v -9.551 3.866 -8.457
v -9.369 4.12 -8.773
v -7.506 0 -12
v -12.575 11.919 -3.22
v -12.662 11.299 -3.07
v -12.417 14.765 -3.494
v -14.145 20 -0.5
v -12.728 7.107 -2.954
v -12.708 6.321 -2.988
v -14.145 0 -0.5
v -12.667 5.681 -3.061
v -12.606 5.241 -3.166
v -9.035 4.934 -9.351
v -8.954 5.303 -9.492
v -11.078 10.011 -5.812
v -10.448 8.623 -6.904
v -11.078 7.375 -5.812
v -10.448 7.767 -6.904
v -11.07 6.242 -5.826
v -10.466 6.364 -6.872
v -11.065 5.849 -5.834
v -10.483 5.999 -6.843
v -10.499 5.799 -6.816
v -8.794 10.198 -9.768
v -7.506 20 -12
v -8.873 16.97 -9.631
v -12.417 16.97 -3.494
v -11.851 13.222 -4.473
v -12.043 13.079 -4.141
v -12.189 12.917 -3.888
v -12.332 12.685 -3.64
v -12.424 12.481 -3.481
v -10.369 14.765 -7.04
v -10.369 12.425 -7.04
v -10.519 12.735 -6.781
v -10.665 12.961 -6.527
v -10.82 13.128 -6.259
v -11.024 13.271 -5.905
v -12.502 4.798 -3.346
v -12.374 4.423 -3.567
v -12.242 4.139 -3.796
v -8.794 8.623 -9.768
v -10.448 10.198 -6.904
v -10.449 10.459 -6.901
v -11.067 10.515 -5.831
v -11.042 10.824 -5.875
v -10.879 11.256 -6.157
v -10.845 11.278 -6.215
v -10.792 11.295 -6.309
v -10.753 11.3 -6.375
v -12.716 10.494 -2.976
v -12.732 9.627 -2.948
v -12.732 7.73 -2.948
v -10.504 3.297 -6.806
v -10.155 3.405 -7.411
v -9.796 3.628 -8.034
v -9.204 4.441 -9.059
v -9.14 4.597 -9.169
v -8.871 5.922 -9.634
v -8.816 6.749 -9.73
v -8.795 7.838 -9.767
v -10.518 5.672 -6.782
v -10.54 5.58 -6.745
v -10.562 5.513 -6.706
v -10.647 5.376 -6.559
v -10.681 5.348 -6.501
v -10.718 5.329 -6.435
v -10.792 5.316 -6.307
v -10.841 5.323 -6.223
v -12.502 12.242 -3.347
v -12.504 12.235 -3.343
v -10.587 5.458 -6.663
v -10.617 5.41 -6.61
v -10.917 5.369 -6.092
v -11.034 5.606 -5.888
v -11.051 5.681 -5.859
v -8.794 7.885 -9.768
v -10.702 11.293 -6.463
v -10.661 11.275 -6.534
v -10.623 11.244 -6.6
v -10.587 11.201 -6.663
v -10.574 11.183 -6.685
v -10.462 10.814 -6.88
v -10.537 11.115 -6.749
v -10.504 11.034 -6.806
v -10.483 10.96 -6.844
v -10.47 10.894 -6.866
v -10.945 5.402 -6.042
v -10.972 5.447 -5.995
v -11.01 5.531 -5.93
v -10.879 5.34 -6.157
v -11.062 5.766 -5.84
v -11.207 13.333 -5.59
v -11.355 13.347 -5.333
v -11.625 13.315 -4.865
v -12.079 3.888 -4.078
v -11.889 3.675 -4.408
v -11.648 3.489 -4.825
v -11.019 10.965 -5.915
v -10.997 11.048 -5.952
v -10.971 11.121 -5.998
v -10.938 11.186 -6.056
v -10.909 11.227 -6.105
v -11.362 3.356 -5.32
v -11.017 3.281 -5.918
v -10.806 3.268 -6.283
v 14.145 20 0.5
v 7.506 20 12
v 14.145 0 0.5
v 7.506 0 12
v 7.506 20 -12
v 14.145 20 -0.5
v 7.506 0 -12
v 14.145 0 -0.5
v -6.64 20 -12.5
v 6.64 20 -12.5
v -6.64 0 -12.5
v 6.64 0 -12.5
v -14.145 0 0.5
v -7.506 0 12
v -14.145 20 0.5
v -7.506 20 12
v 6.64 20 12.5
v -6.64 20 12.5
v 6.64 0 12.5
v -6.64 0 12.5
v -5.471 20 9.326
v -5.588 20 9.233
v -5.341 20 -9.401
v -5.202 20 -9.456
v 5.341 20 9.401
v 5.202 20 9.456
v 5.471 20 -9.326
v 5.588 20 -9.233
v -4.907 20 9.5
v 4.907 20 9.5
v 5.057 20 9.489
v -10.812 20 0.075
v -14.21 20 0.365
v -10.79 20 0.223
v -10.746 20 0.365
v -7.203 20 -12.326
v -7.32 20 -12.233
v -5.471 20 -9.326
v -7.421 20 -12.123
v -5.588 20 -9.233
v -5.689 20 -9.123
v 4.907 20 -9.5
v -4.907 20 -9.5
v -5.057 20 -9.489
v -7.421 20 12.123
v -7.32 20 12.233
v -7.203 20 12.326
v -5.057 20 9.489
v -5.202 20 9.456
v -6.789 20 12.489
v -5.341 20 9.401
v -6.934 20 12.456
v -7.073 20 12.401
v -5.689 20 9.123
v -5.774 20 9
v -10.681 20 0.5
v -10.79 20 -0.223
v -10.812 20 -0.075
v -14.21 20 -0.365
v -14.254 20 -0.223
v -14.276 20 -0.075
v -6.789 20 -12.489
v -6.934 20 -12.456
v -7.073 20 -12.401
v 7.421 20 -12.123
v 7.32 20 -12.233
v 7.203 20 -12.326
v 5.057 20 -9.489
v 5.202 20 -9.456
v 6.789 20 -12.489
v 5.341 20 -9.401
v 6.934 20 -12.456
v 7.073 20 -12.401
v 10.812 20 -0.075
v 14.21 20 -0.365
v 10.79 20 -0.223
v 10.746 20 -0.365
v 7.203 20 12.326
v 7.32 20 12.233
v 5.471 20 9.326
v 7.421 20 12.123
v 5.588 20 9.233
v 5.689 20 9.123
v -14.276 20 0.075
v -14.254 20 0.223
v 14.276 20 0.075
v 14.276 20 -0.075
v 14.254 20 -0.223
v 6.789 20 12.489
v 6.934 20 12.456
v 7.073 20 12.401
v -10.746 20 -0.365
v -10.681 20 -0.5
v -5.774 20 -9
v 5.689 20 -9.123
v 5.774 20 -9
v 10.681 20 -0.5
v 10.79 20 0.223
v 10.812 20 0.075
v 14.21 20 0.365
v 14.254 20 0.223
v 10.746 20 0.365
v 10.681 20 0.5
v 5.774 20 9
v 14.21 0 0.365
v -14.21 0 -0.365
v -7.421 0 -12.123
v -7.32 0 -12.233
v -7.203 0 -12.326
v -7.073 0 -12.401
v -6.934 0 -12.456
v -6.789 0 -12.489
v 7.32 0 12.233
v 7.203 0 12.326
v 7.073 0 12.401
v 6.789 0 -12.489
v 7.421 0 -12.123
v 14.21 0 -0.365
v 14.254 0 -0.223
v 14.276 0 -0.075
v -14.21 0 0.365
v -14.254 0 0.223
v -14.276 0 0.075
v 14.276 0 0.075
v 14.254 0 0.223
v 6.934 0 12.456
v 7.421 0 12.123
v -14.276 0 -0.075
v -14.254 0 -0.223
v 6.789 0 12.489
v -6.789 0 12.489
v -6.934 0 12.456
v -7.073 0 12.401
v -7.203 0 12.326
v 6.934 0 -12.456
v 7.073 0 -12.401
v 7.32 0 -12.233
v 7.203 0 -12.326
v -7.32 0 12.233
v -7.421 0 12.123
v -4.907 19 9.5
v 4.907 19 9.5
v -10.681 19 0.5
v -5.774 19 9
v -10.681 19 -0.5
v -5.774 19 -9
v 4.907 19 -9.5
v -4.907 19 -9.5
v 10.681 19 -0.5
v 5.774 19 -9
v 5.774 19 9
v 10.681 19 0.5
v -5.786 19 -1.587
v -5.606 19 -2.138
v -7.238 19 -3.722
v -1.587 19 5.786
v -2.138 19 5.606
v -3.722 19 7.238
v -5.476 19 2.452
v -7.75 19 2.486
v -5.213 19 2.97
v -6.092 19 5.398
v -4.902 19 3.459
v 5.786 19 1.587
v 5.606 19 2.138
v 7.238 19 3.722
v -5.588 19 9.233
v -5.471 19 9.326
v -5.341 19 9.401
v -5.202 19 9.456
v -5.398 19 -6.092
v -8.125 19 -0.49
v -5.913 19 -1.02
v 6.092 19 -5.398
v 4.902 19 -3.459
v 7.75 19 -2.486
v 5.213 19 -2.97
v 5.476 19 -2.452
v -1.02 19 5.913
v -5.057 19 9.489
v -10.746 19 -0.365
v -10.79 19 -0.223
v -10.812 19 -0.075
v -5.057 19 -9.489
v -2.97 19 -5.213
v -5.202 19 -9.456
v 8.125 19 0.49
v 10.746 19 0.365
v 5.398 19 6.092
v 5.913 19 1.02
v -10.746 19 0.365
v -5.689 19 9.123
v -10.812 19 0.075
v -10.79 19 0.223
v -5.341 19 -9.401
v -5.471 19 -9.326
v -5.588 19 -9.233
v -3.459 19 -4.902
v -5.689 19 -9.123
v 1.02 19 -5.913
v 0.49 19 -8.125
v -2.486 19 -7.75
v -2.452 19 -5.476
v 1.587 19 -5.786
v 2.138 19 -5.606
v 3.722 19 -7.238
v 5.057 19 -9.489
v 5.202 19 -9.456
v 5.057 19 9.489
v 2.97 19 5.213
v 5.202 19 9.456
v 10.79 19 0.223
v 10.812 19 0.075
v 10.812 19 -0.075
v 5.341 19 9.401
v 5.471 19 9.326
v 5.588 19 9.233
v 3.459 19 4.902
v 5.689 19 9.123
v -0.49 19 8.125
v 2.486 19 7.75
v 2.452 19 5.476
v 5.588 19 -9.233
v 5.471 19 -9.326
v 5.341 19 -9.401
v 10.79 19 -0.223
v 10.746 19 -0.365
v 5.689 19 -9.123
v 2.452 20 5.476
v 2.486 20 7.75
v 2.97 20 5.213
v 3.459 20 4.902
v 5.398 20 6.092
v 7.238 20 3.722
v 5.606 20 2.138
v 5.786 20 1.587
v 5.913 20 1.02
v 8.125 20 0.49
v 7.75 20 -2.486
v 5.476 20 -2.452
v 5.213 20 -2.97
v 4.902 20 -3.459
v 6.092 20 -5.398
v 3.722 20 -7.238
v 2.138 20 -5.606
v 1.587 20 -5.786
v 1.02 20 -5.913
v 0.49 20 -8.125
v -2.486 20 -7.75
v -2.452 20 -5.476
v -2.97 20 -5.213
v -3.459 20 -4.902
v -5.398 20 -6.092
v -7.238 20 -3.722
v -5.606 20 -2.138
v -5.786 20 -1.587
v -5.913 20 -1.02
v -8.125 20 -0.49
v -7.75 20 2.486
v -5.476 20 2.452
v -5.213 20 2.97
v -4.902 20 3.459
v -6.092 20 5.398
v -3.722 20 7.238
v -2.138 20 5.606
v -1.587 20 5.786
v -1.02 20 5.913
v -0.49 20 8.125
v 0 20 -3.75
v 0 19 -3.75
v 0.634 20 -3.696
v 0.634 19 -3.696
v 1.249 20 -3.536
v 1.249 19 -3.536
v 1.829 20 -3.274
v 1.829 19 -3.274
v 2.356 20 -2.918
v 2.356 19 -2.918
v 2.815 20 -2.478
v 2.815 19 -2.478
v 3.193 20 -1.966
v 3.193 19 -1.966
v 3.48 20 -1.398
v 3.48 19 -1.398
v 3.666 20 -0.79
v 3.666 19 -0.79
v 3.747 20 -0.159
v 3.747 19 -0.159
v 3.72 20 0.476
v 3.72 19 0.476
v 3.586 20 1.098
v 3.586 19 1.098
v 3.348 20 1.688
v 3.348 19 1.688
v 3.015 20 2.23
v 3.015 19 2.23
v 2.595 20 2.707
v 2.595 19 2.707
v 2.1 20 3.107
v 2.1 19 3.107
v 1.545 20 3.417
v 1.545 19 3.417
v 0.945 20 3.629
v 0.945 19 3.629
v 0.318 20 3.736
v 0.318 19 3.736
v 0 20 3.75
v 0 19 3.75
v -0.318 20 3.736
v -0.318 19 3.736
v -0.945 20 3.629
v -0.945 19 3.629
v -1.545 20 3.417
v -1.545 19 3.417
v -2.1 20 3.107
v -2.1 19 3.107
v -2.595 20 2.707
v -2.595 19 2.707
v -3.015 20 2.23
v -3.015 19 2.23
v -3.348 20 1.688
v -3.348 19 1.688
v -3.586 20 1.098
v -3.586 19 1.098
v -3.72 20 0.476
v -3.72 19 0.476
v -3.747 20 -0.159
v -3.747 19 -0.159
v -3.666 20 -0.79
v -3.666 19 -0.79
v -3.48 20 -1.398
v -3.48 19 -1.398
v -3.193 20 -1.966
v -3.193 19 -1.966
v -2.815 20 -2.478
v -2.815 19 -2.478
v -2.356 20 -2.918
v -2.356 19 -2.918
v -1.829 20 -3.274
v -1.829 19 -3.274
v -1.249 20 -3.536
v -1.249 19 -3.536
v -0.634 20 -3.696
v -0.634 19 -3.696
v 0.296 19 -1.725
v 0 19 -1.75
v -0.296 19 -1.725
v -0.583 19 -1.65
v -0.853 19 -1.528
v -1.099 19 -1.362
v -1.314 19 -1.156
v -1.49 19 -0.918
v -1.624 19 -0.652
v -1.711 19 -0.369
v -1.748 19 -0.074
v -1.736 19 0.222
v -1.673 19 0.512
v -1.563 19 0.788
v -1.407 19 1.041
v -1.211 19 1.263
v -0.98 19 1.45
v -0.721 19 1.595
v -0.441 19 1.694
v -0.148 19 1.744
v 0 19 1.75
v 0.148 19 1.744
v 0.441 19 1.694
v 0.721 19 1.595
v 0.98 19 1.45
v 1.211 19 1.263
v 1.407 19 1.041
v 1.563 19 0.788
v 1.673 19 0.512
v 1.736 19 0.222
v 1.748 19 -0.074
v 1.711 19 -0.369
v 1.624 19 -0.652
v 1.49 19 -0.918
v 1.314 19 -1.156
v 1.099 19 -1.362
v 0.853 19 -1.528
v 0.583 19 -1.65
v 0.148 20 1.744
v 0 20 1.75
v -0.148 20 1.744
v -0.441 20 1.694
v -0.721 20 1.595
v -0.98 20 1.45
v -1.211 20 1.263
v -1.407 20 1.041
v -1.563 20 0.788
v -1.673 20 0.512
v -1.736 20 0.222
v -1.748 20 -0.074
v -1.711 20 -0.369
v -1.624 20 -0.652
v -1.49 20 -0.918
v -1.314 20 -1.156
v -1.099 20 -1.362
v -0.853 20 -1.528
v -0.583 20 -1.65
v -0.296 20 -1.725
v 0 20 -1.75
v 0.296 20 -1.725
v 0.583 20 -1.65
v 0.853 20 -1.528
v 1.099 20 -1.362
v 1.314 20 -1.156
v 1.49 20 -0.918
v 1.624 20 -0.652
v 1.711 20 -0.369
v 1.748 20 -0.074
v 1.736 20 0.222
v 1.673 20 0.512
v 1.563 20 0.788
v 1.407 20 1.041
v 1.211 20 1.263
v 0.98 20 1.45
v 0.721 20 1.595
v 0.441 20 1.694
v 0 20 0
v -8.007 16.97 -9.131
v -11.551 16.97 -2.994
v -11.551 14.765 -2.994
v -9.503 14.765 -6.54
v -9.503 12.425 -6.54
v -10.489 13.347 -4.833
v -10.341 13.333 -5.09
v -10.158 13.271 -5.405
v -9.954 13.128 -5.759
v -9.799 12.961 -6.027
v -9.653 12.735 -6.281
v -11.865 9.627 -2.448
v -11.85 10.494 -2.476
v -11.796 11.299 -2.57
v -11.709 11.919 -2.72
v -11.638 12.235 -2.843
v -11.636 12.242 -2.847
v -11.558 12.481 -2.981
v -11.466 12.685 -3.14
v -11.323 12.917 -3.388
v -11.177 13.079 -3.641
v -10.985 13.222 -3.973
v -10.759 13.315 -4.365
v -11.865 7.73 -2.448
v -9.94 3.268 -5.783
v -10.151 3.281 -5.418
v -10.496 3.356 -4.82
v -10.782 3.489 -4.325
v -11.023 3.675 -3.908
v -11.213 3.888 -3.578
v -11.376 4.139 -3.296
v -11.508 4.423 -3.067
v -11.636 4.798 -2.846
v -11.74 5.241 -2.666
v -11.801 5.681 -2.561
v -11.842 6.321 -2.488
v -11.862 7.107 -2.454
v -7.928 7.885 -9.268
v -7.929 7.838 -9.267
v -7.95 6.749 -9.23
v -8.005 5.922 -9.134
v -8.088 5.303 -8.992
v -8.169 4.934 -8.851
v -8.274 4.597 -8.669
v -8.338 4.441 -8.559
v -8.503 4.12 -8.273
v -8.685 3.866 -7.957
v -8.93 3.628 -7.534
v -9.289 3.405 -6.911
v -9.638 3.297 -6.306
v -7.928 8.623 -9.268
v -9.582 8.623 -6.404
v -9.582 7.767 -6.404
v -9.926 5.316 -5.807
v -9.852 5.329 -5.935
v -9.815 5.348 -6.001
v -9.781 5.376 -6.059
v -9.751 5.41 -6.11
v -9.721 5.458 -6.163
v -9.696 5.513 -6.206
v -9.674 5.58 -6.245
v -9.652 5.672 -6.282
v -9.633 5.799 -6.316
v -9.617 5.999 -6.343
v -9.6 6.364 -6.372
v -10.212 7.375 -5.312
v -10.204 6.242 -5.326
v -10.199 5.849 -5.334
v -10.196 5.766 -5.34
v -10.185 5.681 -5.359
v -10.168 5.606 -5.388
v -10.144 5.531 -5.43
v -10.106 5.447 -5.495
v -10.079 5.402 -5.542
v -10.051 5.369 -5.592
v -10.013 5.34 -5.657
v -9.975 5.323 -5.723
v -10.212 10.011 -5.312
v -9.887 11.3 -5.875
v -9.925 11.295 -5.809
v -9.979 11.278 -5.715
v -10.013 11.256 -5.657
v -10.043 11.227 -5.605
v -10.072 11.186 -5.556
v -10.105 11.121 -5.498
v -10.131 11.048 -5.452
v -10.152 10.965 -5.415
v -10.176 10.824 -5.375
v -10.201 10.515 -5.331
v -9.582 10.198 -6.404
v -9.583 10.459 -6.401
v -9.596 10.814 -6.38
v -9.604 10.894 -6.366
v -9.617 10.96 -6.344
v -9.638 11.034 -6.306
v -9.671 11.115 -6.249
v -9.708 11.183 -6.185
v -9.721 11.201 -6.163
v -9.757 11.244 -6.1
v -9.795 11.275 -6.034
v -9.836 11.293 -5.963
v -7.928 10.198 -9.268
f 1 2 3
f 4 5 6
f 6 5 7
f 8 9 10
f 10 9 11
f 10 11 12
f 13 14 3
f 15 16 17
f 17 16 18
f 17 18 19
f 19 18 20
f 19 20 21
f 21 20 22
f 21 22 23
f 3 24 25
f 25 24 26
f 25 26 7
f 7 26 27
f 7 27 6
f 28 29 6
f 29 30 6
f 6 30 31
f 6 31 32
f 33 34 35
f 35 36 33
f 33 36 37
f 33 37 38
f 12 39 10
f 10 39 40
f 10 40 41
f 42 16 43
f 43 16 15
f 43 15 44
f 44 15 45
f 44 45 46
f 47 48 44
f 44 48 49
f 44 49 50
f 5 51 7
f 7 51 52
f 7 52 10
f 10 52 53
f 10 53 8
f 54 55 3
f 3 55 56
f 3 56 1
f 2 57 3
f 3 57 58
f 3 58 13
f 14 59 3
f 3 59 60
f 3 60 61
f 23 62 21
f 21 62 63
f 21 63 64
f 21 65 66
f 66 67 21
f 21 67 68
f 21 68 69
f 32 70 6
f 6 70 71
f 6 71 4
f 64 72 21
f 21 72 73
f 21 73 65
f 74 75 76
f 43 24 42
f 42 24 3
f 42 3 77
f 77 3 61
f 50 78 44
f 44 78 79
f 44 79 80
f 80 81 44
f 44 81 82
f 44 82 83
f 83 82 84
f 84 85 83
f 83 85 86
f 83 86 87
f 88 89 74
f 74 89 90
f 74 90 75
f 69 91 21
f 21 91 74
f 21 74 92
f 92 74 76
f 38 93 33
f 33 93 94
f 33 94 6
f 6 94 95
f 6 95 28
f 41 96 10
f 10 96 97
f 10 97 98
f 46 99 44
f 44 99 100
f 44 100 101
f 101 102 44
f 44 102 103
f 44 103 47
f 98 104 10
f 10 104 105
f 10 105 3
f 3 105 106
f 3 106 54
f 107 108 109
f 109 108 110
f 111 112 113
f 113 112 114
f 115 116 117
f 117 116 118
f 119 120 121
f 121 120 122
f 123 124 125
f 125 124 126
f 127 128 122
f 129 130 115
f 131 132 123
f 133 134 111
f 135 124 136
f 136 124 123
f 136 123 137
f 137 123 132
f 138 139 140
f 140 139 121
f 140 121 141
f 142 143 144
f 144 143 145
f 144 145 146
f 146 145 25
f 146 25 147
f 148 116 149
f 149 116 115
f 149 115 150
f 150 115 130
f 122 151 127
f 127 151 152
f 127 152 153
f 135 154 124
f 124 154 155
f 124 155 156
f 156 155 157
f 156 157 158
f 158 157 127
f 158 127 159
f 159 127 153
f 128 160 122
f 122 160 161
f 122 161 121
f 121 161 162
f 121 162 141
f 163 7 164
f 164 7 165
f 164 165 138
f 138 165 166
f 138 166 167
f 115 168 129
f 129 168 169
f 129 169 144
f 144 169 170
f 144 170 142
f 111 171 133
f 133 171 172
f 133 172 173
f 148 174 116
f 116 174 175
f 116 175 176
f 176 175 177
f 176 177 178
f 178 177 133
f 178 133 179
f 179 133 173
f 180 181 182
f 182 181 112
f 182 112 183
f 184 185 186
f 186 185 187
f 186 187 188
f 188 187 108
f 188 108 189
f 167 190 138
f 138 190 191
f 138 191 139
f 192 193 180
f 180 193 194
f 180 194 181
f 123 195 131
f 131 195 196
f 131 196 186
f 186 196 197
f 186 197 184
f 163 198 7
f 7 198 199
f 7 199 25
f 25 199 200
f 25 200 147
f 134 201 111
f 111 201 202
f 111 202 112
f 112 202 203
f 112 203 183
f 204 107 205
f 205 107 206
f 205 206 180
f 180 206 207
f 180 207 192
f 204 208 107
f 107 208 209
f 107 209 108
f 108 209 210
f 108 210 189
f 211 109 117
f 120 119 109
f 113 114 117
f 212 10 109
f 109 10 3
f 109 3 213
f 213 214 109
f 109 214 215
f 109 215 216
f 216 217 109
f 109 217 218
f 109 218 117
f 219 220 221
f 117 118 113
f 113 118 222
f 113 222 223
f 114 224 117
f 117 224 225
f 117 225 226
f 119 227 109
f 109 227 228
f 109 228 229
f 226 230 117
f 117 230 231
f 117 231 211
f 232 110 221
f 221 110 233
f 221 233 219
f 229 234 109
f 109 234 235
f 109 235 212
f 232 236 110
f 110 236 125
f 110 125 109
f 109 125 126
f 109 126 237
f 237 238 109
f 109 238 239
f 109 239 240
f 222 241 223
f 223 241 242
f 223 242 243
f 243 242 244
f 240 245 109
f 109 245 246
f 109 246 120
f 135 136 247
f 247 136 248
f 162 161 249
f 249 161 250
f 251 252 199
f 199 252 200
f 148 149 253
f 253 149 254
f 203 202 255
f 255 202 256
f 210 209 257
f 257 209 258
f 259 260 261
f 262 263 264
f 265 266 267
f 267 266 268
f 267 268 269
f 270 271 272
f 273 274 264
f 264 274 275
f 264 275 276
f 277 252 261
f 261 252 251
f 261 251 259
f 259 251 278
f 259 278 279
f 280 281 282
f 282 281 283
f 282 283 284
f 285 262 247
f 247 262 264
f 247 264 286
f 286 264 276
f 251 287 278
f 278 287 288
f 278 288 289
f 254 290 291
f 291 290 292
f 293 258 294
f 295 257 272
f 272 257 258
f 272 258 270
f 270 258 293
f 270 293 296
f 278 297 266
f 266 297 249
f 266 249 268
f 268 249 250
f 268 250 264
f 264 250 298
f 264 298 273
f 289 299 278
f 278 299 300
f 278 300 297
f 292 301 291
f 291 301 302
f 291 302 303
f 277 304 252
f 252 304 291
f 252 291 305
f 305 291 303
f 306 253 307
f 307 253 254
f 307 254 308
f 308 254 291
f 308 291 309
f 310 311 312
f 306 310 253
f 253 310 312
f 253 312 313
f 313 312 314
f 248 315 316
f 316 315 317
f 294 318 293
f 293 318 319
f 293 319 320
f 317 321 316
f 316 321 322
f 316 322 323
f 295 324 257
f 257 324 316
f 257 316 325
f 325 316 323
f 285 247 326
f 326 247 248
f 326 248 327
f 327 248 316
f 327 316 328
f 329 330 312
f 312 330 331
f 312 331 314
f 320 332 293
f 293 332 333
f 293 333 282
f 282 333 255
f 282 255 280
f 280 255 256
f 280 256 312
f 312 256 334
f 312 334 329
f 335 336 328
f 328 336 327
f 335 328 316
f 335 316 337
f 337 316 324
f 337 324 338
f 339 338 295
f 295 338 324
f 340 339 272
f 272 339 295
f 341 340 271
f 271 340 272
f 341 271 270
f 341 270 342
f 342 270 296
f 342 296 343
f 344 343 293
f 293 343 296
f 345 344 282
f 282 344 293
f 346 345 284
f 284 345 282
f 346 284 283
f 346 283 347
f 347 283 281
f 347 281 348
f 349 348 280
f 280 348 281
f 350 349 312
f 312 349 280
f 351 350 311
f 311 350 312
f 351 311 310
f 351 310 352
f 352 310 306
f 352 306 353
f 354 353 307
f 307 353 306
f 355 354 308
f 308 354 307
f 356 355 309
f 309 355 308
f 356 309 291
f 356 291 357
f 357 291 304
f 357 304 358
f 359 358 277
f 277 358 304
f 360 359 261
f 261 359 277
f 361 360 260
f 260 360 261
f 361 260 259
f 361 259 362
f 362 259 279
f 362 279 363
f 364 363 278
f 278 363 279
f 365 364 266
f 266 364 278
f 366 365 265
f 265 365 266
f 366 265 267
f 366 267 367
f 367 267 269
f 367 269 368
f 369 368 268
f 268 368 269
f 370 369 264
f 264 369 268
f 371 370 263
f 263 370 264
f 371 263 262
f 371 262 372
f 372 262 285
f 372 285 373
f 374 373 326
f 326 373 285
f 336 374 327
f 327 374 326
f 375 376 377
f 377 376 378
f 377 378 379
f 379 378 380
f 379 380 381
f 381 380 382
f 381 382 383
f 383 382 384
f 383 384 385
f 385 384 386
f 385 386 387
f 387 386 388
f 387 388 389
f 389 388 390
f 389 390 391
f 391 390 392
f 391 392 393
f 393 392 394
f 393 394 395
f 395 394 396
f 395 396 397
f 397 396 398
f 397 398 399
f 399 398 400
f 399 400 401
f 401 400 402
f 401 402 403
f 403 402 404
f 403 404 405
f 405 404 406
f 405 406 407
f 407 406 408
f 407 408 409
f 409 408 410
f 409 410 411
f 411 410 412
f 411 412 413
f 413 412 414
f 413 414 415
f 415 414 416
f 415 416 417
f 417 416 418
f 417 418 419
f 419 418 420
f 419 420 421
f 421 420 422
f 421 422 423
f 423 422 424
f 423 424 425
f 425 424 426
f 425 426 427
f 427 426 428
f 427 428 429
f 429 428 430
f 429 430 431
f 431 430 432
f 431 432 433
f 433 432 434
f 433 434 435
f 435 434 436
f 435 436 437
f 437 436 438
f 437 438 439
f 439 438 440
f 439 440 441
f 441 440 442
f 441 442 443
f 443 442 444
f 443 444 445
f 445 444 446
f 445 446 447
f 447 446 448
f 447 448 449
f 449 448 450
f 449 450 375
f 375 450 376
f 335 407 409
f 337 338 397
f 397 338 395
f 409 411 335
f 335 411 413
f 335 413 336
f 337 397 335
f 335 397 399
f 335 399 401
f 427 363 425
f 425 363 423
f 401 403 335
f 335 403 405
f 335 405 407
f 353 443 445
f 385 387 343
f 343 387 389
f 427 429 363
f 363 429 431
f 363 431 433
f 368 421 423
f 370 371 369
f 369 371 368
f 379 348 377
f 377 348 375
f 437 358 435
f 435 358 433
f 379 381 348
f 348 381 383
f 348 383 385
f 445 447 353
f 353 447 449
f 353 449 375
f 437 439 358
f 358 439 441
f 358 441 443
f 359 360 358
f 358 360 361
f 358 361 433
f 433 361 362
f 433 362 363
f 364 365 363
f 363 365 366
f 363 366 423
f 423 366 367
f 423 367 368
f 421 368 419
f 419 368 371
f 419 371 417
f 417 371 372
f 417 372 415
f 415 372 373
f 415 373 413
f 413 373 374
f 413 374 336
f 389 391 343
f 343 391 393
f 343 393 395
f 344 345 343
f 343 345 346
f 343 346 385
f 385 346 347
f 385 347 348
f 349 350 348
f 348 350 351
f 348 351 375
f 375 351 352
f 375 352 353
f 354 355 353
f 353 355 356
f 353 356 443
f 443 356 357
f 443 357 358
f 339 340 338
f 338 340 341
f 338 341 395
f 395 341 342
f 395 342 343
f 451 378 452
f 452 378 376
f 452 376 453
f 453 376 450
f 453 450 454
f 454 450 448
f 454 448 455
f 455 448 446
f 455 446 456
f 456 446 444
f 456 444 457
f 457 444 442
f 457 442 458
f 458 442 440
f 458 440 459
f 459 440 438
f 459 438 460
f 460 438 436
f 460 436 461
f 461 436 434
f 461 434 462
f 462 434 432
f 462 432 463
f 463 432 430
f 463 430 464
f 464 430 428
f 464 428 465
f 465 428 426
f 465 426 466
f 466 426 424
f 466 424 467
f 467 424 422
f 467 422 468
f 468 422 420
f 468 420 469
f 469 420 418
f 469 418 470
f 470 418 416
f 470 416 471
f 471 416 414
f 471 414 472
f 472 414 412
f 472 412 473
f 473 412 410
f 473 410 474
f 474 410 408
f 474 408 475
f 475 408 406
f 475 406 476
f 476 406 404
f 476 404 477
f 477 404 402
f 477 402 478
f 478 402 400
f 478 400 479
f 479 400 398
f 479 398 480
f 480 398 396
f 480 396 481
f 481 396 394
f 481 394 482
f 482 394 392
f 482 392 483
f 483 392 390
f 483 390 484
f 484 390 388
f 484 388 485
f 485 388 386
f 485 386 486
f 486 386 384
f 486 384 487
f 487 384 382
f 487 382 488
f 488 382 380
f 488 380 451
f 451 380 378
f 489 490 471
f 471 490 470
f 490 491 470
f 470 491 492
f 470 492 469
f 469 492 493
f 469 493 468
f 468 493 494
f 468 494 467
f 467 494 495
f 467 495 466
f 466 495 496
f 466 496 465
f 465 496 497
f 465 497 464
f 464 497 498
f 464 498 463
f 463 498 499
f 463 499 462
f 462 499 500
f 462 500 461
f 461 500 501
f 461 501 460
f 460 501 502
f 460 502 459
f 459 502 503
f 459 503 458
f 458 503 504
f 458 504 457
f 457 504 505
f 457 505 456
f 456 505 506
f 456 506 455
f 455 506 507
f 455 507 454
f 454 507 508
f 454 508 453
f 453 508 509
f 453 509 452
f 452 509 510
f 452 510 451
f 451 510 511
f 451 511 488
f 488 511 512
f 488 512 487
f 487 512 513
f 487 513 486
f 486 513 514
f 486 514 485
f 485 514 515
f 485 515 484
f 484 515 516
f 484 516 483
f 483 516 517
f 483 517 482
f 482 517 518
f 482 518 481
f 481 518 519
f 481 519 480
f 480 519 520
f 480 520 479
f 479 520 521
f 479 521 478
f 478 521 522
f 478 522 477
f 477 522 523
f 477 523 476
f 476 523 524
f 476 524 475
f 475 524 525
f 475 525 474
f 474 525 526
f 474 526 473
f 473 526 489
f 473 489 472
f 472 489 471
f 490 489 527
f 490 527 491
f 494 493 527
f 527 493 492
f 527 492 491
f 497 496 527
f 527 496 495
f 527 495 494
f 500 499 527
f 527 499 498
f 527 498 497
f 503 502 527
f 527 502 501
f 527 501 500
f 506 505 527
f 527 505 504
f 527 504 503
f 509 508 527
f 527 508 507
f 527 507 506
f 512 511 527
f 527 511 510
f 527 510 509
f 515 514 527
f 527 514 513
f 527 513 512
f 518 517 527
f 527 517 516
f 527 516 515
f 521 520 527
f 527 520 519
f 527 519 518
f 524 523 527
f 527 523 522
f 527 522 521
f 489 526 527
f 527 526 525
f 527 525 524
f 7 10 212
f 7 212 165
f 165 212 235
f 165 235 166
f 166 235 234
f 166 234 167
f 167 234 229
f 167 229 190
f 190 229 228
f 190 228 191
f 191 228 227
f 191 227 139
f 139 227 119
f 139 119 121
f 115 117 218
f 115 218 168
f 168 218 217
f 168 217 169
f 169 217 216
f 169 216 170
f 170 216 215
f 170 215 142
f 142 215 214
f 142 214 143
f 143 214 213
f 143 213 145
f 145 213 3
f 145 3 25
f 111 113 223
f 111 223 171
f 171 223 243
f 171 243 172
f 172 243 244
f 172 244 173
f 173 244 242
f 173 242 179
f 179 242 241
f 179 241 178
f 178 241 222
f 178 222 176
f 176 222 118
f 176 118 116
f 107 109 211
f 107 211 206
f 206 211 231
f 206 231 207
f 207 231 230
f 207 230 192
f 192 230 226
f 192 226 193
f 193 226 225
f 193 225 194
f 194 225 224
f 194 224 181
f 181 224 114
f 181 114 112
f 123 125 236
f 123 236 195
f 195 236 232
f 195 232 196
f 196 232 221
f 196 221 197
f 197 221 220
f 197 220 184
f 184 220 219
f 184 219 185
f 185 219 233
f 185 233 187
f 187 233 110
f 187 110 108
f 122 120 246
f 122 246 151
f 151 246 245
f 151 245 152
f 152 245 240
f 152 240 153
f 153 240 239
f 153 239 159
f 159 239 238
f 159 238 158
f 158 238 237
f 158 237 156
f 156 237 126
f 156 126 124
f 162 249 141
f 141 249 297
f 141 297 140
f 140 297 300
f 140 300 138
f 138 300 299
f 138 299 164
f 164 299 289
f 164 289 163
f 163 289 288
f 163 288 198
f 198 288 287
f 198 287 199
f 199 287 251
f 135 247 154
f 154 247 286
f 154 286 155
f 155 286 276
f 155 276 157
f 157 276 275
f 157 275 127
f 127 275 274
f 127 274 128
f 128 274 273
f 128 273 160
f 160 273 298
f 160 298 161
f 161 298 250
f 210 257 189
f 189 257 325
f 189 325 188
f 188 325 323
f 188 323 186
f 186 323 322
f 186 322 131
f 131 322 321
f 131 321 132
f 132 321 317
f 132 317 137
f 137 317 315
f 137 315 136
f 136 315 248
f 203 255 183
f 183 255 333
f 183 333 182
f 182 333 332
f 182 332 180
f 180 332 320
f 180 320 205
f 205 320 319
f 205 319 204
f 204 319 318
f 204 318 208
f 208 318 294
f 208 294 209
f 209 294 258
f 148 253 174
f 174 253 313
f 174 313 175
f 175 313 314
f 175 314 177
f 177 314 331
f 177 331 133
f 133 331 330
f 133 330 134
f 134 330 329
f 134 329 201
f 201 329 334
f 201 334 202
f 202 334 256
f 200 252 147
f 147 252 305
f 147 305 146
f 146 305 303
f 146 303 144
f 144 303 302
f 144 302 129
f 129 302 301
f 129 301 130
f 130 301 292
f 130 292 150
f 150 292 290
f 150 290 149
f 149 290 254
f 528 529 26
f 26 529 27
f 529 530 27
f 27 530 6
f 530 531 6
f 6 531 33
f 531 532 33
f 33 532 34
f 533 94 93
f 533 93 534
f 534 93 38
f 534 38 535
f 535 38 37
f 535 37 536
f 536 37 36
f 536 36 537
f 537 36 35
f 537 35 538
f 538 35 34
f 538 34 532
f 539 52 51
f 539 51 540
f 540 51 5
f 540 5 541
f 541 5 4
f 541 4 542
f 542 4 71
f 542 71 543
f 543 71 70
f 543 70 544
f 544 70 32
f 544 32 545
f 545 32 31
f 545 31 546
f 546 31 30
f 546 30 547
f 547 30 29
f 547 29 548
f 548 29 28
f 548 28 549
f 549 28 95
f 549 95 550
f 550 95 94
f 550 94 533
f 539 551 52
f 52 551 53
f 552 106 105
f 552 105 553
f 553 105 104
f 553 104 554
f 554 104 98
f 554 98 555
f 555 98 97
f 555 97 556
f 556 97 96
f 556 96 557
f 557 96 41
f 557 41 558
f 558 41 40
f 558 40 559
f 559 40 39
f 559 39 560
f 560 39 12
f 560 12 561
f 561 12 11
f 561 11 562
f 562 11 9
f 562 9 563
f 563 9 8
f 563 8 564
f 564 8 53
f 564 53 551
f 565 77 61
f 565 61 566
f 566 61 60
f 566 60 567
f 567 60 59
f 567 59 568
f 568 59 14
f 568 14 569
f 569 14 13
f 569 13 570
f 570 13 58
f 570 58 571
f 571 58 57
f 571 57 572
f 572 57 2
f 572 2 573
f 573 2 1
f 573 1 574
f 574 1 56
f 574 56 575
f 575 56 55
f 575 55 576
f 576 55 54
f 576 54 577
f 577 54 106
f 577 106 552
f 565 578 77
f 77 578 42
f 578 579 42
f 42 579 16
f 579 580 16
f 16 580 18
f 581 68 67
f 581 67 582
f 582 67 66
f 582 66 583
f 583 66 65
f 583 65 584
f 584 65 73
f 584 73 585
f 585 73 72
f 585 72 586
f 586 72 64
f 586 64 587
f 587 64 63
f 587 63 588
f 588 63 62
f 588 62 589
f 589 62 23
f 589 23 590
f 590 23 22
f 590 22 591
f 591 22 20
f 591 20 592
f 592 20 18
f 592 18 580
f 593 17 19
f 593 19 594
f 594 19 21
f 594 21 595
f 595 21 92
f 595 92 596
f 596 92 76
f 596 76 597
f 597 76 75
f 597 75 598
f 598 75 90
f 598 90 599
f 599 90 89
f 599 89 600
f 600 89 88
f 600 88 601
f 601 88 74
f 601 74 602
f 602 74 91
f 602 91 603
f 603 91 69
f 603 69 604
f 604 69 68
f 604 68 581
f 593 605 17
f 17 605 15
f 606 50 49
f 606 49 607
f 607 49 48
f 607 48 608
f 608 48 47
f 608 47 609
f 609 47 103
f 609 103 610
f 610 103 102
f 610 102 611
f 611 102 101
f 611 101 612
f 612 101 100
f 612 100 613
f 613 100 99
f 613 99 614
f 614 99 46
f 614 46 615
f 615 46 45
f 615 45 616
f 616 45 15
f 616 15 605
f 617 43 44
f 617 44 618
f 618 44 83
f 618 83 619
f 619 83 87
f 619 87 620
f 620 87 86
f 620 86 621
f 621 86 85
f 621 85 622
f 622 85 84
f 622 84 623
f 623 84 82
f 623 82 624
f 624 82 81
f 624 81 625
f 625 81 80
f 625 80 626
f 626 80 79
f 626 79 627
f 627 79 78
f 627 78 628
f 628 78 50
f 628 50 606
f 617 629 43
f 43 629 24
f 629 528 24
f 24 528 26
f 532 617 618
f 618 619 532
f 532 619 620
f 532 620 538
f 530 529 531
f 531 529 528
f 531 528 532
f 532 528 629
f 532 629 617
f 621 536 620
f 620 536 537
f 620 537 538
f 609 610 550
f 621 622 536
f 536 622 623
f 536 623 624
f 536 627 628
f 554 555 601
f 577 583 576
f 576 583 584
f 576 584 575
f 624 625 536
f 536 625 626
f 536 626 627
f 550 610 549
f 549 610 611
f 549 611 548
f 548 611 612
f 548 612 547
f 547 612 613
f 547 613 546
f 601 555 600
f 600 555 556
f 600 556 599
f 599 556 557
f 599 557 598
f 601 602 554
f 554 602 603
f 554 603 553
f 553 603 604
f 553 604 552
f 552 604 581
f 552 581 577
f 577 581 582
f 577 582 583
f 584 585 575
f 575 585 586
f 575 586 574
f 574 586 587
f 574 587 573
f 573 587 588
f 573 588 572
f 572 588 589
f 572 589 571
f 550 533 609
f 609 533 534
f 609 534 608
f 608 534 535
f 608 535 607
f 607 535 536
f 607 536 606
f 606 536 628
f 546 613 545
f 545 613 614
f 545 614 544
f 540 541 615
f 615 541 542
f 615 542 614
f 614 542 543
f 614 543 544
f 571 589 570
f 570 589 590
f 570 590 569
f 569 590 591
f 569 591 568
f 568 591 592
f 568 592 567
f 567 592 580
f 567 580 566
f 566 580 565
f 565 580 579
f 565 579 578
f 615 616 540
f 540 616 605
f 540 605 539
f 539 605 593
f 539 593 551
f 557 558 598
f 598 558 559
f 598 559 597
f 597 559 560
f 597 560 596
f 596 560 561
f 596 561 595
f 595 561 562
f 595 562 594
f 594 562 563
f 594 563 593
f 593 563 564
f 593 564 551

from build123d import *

# Parameters (mm, degrees)
EXTRUDE_1_DEPTH     = 20
CUT_EXTRUDE_1_DEPTH = 1
SKETCH_3_R          = 3.75
SKETCH_3_R_2        = 1.75
EXTRUDE_2_DEPTH     = 1
FILLET_1_R          = 1
CUT_EXTRUDE_2_DEPTH = 1


with BuildPart() as part:
    # 草图1 → 凸台-拉伸1 (new body)
    with BuildSketch(Plane(origin=(0, 0, 0), x_dir=(1, 0, 0), z_dir=(0, 1, 0))):
        Polygon((14.43375673, 0), (7.216878365, 12.5), (-7.216878365, 12.5), (-14.43375673, 0), (-7.216878365, -12.5), (7.216878365, -12.5), align=None)
    extrude(amount=EXTRUDE_1_DEPTH)

    # 草图2 → 切除-拉伸1 (cut)
    with BuildSketch(Plane(origin=(0, 20, 0), x_dir=(1, 0, 0), z_dir=(0, 1, 0))):
        Polygon((5.484827557, -9.5), (10.969655115, 0), (5.484827557, 9.5), (-5.484827557, 9.5), (-10.969655115, 0), (-5.484827557, -9.5), align=None)
    extrude(amount=-CUT_EXTRUDE_1_DEPTH, mode=Mode.SUBTRACT)

    # 草图3 → 凸台-拉伸2 (add)
    # profile 1 of 2: a face of its own
    with BuildSketch(Plane(origin=(0, 19, 0), x_dir=(1, 0, 0), z_dir=(0, 1, 0))):
        with BuildLine():
            Line((8.124640736, -0.490115197), (7.750329512, 2.486441724))
            Line((7.750329512, 2.486441724), (5.47592438, 2.452397232))
            ThreePointArc((5.47592438, 2.452397232), (5.213474627, 2.969794996), (4.902281736, 3.4594268))
            Line((4.902281736, 3.4594268), (6.091552339, 5.39842478))
            Line((6.091552339, 5.39842478), (3.72213075, 7.238490359))
            Line((3.72213075, 7.238490359), (2.137956549, 5.606169975))
            ThreePointArc((2.137956549, 5.606169975), (1.586521082, 5.786445442), (1.02025251, 5.912620808))
            Line((1.02025251, 5.912620808), (0.490115197, 8.124640736))
            Line((0.490115197, 8.124640736), (-2.486441724, 7.750329512))
            Line((-2.486441724, 7.750329512), (-2.452397232, 5.47592438))
            ThreePointArc((-2.452397232, 5.47592438), (-2.969794996, 5.213474627), (-3.4594268, 4.902281736))
            Line((-3.4594268, 4.902281736), (-5.39842478, 6.091552339))
            Line((-5.39842478, 6.091552339), (-7.238490359, 3.72213075))
            Line((-7.238490359, 3.72213075), (-5.606169975, 2.137956549))
            ThreePointArc((-5.606169975, 2.137956549), (-5.786445442, 1.586521082), (-5.912620808, 1.02025251))
            Line((-5.912620808, 1.02025251), (-8.124640736, 0.490115197))
            Line((-8.124640736, 0.490115197), (-7.750329512, -2.486441724))
            Line((-7.750329512, -2.486441724), (-5.47592438, -2.452397232))
            ThreePointArc((-5.47592438, -2.452397232), (-5.213474627, -2.969794996), (-4.902281736, -3.4594268))
            Line((-4.902281736, -3.4594268), (-6.091552339, -5.39842478))
            Line((-6.091552339, -5.39842478), (-3.72213075, -7.238490359))
            Line((-3.72213075, -7.238490359), (-2.137956549, -5.606169975))
            ThreePointArc((-2.137956549, -5.606169975), (-1.586521082, -5.786445442), (-1.02025251, -5.912620808))
            Line((-1.02025251, -5.912620808), (-0.490115197, -8.124640736))
            Line((-0.490115197, -8.124640736), (2.486441724, -7.750329512))
            Line((2.486441724, -7.750329512), (2.452397232, -5.47592438))
            ThreePointArc((2.452397232, -5.47592438), (2.969794996, -5.213474627), (3.4594268, -4.902281736))
            Line((3.4594268, -4.902281736), (5.39842478, -6.091552339))
            Line((5.39842478, -6.091552339), (7.238490359, -3.72213075))
            Line((7.238490359, -3.72213075), (5.606169975, -2.137956549))
            ThreePointArc((5.606169975, -2.137956549), (5.786445442, -1.586521082), (5.912620808, -1.02025251))
            Line((5.912620808, -1.02025251), (8.124640736, -0.490115197))
        make_face()
        with Locations(Location((0, 0, 0), (0, 0, 270))):
            Circle(SKETCH_3_R, mode=Mode.SUBTRACT)
    # profile 2 of 2: a face of its own
    with BuildSketch(Plane(origin=(0, 19, 0), x_dir=(1, 0, 0), z_dir=(0, 1, 0))):
        with Locations(Location((0, 0, 0), (0, 0, 270))):
            Circle(SKETCH_3_R_2)
    extrude(amount=EXTRUDE_2_DEPTH)

    # 圆角1
    fillet_1_edges = [part.edges().sort_by_distance(p)[0] for p in [
        (7.216878365, 10, 12.5),
        (-7.216878365, 10, 12.5),
        (-14.43375673, 10, 0),
        (-7.216878365, 10, -12.5),
        (7.216878365, 10, -12.5),
        (14.43375673, 10, 0),
        (5.484827557, 19.5, 9.5),
        (-5.484827557, 19.5, 9.5),
        (-10.969655115, 19.5, 0),
        (-5.484827557, 19.5, -9.5),
        (5.484827557, 19.5, -9.5),
        (10.969655115, 19.5, 0),
    ]]
    fillet(fillet_1_edges, radius=FILLET_1_R)

    # 草图5 → 切除-拉伸2 (cut)
    with BuildSketch(Plane(origin=(-10.825317547, 0, -6.25), x_dir=(-0.4999999999999999, 0, 0.8660254037844386), z_dir=(-0.8660254037844387, 0, -0.49999999999999994))):
        with BuildLine():
            Line((3.182453488, 16.969587549), (3.182453488, 14.764791287))
            Line((3.182453488, 14.764791287), (-0.912168142, 14.764791287))
            Line((-0.912168142, 14.764791287), (-0.912168142, 12.424655968))
            add(Edge.make_bspline(
                [(-0.912168142, 12.424655968), (-0.847309657, 12.498399491), (-0.720214162, 12.642905944), (-0.505577598, 12.829771532), (-0.281644119, 12.993696487), (-0.03802037, 13.120245746), (0.216657884, 13.221856292), (0.48430812, 13.297309113), (0.76720826, 13.338516205), (0.96030635, 13.344412753), (1.05886066, 13.347422261)],
                knots=[0, 0, 0, 0, 1.045137506, 2.048032268, 3.025244095, 3.994689253, 4.963425262, 5.942900511, 6.950087905, 8, 8, 8, 8], degree=3))
            add(Edge.make_bspline(
                [(1.05886066, 13.347422261), (1.16883757, 13.344864159), (1.382789631, 13.339887557), (1.693785994, 13.307073086), (1.983134795, 13.243970031), (2.252993321, 13.162283164), (2.500375895, 13.052039166), (2.730038976, 12.922999932), (2.933985745, 12.762421538), (3.123965679, 12.581868168), (3.288793274, 12.361712081), (3.431996368, 12.101261287), (3.547683834, 11.794691149), (3.645932383, 11.446555171), (3.720891941, 11.053767841), (3.772768776, 10.617140926), (3.808847597, 10.136794392), (3.811179356, 9.801612815), (3.812395277, 9.626828569)],
                knots=[0, 0, 0, 0, 0.985872992, 1.917944025, 2.797562931, 3.637028488, 4.440265023, 5.220874469, 5.991447987, 6.760933446, 7.563799771, 8.445720104, 9.41645382, 10.49401341, 11.685015475, 12.996358654, 14.433717056, 16, 16, 16, 16], degree=3))
            Line((3.812395277, 9.626828569), (3.812395277, 7.729621071))
            add(Edge.make_bspline(
                [(3.812395277, 7.729621071), (3.811636865, 7.615610244), (3.810174535, 7.39578083), (3.80705838, 7.077408436), (3.793560759, 6.782973949), (3.778578513, 6.511500745), (3.76367309, 6.263371536), (3.737287126, 6.038869904), (3.711892824, 5.837464832), (3.669454906, 5.601271022), (3.597733869, 5.326616934), (3.472868845, 5.012709117), (3.309162628, 4.711425167), (3.108564003, 4.423721493), (2.866599584, 4.157179392), (2.577446527, 3.92540628), (2.24645401, 3.7248973), (1.873113716, 3.557651353), (1.455891936, 3.427693886), (0.995726213, 3.335903519), (0.492669559, 3.279113398), (0.142814297, 3.272028018), (-0.038616051, 3.268353634)],
                knots=[0, 0, 0, 0, 0.989754807, 1.908390848, 2.7635747, 3.547977914, 4.268858805, 4.920711554, 5.509810583, 6.030765573, 7.003130656, 7.968352344, 8.956004724, 9.973318671, 11.006457242, 12.069562088, 13.178372901, 14.357538766, 15.611873537, 16.963616047, 18.425371121, 20, 20, 20, 20], degree=3))
            add(Edge.make_bspline(
                [(-0.038616051, 3.268353634), (-0.243948644, 3.274180091), (-0.644079256, 3.285534078), (-1.226293798, 3.369283972), (-1.771106092, 3.51227482), (-2.196157724, 3.678501355), (-2.511106829, 3.83980469), (-2.728441898, 3.974571457), (-2.926504503, 4.126800061), (-3.108892964, 4.2902182), (-3.271392556, 4.469966225), (-3.421915, 4.658960555), (-3.548207739, 4.867044262), (-3.661278956, 5.089487655), (-3.758939888, 5.334542356), (-3.837250577, 5.608986087), (-3.910253078, 5.912248249), (-3.964865943, 6.247990604), (-4.008619503, 6.61415961), (-4.040877856, 7.010590868), (-4.056594386, 7.437489802), (-4.060074578, 7.732071764), (-4.061877088, 7.884645808)],
                knots=[0, 0, 0, 0, 1.727950145, 3.367247941, 4.937991842, 6.459754912, 7.197724692, 7.914163588, 8.608713051, 9.29788901, 9.972208411, 10.646138941, 11.328189198, 12.016707826, 12.744892405, 13.544369189, 14.416825977, 15.369082158, 16.405235107, 17.52037283, 18.715716525, 20, 20, 20, 20], degree=3))
            Line((-4.061877088, 7.884645808), (-4.061877088, 8.622858842))
            Line((-4.061877088, 8.622858842), (-0.754682694, 8.622858842))
            Line((-0.754682694, 8.622858842), (-0.754682694, 7.766531722))
            add(Edge.make_bspline(
                [(-0.754682694, 7.766531722), (-0.753745858, 7.659902919), (-0.75193704, 7.454026853), (-0.751208911, 7.157043894), (-0.743002222, 6.883906615), (-0.733560957, 6.635339552), (-0.721369171, 6.411380043), (-0.706933178, 6.211159983), (-0.689454556, 6.034806531), (-0.672120944, 5.880501001), (-0.642961084, 5.747231672), (-0.601357722, 5.632643336), (-0.547313566, 5.534055691), (-0.477049795, 5.453064567), (-0.392137997, 5.391956317), (-0.296077191, 5.345048165), (-0.184835288, 5.322009644), (-0.106776695, 5.317852774), (-0.065683863, 5.315664449)],
                knots=[0, 0, 0, 0, 1.823732709, 3.521214749, 5.07892445, 6.496893277, 7.775393918, 8.9147992, 9.929598955, 10.806563962, 11.568882902, 12.256841855, 12.884990135, 13.481481553, 14.073502327, 14.663358483, 15.296344146, 16, 16, 16, 16], degree=3))
            add(Edge.make_bspline(
                [(-0.065683863, 5.315664449), (-0.027731598, 5.317411777), (0.046123876, 5.320812096), (0.149783373, 5.351069232), (0.243322788, 5.398874635), (0.343070554, 5.490110476), (0.439159872, 5.622616497), (0.479320906, 5.768787157), (0.480182252, 5.884957887), (0.487287538, 5.986529514), (0.487850586, 6.126071944), (0.490137715, 6.30324548), (0.496700441, 6.518097802), (0.496919244, 6.770787873), (0.503969738, 7.060282299), (0.504774487, 7.266182326), (0.505200884, 7.375278814)],
                knots=[0, 0, 0, 0, 0.670460052, 1.304721758, 1.895793995, 2.513210904, 3.681360763, 4.748587252, 5.126397419, 5.736946296, 6.550219692, 7.595791071, 8.873918375, 10.355072828, 12.068728984, 14, 14, 14, 14], degree=3))
            Line((0.505200884, 7.375278814), (0.505200884, 10.010699346))
            add(Edge.make_bspline(
                [(0.505200884, 10.010699346), (0.503380579, 10.125575768), (0.500045872, 10.336023509), (0.47546885, 10.622126346), (0.431657196, 10.849379296), (0.366944382, 11.02443971), (0.272609864, 11.14988358), (0.158217982, 11.242089048), (0.013291946, 11.290877165), (-0.089964803, 11.296922757), (-0.144426586, 11.300111446)],
                knots=[0, 0, 0, 0, 1.685864163, 3.088417099, 4.207402662, 5.076902269, 5.799120759, 6.485333904, 7.201103886, 8, 8, 8, 8], degree=3))
            add(Edge.make_bspline(
                [(-0.144426586, 11.300111446), (-0.179832609, 11.298921334), (-0.249105789, 11.296592836), (-0.348784063, 11.271685194), (-0.438878072, 11.228403245), (-0.543268285, 11.155689146), (-0.642858944, 11.044453729), (-0.714660126, 10.910993139), (-0.732507313, 10.774549614), (-0.748399256, 10.626376191), (-0.753089766, 10.428180796), (-0.75411592, 10.279715188), (-0.754682694, 10.197713315)],
                knots=[0, 0, 0, 0, 0.735055358, 1.438162732, 2.117072139, 2.803012647, 4.070557493, 5.191645157, 5.884125613, 6.912400264, 8.294628872, 10, 10, 10, 10], degree=3))
            Line((-0.754682694, 10.197713315), (-4.061877088, 10.197713315))
            Line((-4.061877088, 10.197713315), (-3.904391641, 16.969587549))
            Line((-3.904391641, 16.969587549), (3.182453488, 16.969587549))
        make_face()
    extrude(amount=-CUT_EXTRUDE_2_DEPTH, mode=Mode.SUBTRACT)


solid = part.part
